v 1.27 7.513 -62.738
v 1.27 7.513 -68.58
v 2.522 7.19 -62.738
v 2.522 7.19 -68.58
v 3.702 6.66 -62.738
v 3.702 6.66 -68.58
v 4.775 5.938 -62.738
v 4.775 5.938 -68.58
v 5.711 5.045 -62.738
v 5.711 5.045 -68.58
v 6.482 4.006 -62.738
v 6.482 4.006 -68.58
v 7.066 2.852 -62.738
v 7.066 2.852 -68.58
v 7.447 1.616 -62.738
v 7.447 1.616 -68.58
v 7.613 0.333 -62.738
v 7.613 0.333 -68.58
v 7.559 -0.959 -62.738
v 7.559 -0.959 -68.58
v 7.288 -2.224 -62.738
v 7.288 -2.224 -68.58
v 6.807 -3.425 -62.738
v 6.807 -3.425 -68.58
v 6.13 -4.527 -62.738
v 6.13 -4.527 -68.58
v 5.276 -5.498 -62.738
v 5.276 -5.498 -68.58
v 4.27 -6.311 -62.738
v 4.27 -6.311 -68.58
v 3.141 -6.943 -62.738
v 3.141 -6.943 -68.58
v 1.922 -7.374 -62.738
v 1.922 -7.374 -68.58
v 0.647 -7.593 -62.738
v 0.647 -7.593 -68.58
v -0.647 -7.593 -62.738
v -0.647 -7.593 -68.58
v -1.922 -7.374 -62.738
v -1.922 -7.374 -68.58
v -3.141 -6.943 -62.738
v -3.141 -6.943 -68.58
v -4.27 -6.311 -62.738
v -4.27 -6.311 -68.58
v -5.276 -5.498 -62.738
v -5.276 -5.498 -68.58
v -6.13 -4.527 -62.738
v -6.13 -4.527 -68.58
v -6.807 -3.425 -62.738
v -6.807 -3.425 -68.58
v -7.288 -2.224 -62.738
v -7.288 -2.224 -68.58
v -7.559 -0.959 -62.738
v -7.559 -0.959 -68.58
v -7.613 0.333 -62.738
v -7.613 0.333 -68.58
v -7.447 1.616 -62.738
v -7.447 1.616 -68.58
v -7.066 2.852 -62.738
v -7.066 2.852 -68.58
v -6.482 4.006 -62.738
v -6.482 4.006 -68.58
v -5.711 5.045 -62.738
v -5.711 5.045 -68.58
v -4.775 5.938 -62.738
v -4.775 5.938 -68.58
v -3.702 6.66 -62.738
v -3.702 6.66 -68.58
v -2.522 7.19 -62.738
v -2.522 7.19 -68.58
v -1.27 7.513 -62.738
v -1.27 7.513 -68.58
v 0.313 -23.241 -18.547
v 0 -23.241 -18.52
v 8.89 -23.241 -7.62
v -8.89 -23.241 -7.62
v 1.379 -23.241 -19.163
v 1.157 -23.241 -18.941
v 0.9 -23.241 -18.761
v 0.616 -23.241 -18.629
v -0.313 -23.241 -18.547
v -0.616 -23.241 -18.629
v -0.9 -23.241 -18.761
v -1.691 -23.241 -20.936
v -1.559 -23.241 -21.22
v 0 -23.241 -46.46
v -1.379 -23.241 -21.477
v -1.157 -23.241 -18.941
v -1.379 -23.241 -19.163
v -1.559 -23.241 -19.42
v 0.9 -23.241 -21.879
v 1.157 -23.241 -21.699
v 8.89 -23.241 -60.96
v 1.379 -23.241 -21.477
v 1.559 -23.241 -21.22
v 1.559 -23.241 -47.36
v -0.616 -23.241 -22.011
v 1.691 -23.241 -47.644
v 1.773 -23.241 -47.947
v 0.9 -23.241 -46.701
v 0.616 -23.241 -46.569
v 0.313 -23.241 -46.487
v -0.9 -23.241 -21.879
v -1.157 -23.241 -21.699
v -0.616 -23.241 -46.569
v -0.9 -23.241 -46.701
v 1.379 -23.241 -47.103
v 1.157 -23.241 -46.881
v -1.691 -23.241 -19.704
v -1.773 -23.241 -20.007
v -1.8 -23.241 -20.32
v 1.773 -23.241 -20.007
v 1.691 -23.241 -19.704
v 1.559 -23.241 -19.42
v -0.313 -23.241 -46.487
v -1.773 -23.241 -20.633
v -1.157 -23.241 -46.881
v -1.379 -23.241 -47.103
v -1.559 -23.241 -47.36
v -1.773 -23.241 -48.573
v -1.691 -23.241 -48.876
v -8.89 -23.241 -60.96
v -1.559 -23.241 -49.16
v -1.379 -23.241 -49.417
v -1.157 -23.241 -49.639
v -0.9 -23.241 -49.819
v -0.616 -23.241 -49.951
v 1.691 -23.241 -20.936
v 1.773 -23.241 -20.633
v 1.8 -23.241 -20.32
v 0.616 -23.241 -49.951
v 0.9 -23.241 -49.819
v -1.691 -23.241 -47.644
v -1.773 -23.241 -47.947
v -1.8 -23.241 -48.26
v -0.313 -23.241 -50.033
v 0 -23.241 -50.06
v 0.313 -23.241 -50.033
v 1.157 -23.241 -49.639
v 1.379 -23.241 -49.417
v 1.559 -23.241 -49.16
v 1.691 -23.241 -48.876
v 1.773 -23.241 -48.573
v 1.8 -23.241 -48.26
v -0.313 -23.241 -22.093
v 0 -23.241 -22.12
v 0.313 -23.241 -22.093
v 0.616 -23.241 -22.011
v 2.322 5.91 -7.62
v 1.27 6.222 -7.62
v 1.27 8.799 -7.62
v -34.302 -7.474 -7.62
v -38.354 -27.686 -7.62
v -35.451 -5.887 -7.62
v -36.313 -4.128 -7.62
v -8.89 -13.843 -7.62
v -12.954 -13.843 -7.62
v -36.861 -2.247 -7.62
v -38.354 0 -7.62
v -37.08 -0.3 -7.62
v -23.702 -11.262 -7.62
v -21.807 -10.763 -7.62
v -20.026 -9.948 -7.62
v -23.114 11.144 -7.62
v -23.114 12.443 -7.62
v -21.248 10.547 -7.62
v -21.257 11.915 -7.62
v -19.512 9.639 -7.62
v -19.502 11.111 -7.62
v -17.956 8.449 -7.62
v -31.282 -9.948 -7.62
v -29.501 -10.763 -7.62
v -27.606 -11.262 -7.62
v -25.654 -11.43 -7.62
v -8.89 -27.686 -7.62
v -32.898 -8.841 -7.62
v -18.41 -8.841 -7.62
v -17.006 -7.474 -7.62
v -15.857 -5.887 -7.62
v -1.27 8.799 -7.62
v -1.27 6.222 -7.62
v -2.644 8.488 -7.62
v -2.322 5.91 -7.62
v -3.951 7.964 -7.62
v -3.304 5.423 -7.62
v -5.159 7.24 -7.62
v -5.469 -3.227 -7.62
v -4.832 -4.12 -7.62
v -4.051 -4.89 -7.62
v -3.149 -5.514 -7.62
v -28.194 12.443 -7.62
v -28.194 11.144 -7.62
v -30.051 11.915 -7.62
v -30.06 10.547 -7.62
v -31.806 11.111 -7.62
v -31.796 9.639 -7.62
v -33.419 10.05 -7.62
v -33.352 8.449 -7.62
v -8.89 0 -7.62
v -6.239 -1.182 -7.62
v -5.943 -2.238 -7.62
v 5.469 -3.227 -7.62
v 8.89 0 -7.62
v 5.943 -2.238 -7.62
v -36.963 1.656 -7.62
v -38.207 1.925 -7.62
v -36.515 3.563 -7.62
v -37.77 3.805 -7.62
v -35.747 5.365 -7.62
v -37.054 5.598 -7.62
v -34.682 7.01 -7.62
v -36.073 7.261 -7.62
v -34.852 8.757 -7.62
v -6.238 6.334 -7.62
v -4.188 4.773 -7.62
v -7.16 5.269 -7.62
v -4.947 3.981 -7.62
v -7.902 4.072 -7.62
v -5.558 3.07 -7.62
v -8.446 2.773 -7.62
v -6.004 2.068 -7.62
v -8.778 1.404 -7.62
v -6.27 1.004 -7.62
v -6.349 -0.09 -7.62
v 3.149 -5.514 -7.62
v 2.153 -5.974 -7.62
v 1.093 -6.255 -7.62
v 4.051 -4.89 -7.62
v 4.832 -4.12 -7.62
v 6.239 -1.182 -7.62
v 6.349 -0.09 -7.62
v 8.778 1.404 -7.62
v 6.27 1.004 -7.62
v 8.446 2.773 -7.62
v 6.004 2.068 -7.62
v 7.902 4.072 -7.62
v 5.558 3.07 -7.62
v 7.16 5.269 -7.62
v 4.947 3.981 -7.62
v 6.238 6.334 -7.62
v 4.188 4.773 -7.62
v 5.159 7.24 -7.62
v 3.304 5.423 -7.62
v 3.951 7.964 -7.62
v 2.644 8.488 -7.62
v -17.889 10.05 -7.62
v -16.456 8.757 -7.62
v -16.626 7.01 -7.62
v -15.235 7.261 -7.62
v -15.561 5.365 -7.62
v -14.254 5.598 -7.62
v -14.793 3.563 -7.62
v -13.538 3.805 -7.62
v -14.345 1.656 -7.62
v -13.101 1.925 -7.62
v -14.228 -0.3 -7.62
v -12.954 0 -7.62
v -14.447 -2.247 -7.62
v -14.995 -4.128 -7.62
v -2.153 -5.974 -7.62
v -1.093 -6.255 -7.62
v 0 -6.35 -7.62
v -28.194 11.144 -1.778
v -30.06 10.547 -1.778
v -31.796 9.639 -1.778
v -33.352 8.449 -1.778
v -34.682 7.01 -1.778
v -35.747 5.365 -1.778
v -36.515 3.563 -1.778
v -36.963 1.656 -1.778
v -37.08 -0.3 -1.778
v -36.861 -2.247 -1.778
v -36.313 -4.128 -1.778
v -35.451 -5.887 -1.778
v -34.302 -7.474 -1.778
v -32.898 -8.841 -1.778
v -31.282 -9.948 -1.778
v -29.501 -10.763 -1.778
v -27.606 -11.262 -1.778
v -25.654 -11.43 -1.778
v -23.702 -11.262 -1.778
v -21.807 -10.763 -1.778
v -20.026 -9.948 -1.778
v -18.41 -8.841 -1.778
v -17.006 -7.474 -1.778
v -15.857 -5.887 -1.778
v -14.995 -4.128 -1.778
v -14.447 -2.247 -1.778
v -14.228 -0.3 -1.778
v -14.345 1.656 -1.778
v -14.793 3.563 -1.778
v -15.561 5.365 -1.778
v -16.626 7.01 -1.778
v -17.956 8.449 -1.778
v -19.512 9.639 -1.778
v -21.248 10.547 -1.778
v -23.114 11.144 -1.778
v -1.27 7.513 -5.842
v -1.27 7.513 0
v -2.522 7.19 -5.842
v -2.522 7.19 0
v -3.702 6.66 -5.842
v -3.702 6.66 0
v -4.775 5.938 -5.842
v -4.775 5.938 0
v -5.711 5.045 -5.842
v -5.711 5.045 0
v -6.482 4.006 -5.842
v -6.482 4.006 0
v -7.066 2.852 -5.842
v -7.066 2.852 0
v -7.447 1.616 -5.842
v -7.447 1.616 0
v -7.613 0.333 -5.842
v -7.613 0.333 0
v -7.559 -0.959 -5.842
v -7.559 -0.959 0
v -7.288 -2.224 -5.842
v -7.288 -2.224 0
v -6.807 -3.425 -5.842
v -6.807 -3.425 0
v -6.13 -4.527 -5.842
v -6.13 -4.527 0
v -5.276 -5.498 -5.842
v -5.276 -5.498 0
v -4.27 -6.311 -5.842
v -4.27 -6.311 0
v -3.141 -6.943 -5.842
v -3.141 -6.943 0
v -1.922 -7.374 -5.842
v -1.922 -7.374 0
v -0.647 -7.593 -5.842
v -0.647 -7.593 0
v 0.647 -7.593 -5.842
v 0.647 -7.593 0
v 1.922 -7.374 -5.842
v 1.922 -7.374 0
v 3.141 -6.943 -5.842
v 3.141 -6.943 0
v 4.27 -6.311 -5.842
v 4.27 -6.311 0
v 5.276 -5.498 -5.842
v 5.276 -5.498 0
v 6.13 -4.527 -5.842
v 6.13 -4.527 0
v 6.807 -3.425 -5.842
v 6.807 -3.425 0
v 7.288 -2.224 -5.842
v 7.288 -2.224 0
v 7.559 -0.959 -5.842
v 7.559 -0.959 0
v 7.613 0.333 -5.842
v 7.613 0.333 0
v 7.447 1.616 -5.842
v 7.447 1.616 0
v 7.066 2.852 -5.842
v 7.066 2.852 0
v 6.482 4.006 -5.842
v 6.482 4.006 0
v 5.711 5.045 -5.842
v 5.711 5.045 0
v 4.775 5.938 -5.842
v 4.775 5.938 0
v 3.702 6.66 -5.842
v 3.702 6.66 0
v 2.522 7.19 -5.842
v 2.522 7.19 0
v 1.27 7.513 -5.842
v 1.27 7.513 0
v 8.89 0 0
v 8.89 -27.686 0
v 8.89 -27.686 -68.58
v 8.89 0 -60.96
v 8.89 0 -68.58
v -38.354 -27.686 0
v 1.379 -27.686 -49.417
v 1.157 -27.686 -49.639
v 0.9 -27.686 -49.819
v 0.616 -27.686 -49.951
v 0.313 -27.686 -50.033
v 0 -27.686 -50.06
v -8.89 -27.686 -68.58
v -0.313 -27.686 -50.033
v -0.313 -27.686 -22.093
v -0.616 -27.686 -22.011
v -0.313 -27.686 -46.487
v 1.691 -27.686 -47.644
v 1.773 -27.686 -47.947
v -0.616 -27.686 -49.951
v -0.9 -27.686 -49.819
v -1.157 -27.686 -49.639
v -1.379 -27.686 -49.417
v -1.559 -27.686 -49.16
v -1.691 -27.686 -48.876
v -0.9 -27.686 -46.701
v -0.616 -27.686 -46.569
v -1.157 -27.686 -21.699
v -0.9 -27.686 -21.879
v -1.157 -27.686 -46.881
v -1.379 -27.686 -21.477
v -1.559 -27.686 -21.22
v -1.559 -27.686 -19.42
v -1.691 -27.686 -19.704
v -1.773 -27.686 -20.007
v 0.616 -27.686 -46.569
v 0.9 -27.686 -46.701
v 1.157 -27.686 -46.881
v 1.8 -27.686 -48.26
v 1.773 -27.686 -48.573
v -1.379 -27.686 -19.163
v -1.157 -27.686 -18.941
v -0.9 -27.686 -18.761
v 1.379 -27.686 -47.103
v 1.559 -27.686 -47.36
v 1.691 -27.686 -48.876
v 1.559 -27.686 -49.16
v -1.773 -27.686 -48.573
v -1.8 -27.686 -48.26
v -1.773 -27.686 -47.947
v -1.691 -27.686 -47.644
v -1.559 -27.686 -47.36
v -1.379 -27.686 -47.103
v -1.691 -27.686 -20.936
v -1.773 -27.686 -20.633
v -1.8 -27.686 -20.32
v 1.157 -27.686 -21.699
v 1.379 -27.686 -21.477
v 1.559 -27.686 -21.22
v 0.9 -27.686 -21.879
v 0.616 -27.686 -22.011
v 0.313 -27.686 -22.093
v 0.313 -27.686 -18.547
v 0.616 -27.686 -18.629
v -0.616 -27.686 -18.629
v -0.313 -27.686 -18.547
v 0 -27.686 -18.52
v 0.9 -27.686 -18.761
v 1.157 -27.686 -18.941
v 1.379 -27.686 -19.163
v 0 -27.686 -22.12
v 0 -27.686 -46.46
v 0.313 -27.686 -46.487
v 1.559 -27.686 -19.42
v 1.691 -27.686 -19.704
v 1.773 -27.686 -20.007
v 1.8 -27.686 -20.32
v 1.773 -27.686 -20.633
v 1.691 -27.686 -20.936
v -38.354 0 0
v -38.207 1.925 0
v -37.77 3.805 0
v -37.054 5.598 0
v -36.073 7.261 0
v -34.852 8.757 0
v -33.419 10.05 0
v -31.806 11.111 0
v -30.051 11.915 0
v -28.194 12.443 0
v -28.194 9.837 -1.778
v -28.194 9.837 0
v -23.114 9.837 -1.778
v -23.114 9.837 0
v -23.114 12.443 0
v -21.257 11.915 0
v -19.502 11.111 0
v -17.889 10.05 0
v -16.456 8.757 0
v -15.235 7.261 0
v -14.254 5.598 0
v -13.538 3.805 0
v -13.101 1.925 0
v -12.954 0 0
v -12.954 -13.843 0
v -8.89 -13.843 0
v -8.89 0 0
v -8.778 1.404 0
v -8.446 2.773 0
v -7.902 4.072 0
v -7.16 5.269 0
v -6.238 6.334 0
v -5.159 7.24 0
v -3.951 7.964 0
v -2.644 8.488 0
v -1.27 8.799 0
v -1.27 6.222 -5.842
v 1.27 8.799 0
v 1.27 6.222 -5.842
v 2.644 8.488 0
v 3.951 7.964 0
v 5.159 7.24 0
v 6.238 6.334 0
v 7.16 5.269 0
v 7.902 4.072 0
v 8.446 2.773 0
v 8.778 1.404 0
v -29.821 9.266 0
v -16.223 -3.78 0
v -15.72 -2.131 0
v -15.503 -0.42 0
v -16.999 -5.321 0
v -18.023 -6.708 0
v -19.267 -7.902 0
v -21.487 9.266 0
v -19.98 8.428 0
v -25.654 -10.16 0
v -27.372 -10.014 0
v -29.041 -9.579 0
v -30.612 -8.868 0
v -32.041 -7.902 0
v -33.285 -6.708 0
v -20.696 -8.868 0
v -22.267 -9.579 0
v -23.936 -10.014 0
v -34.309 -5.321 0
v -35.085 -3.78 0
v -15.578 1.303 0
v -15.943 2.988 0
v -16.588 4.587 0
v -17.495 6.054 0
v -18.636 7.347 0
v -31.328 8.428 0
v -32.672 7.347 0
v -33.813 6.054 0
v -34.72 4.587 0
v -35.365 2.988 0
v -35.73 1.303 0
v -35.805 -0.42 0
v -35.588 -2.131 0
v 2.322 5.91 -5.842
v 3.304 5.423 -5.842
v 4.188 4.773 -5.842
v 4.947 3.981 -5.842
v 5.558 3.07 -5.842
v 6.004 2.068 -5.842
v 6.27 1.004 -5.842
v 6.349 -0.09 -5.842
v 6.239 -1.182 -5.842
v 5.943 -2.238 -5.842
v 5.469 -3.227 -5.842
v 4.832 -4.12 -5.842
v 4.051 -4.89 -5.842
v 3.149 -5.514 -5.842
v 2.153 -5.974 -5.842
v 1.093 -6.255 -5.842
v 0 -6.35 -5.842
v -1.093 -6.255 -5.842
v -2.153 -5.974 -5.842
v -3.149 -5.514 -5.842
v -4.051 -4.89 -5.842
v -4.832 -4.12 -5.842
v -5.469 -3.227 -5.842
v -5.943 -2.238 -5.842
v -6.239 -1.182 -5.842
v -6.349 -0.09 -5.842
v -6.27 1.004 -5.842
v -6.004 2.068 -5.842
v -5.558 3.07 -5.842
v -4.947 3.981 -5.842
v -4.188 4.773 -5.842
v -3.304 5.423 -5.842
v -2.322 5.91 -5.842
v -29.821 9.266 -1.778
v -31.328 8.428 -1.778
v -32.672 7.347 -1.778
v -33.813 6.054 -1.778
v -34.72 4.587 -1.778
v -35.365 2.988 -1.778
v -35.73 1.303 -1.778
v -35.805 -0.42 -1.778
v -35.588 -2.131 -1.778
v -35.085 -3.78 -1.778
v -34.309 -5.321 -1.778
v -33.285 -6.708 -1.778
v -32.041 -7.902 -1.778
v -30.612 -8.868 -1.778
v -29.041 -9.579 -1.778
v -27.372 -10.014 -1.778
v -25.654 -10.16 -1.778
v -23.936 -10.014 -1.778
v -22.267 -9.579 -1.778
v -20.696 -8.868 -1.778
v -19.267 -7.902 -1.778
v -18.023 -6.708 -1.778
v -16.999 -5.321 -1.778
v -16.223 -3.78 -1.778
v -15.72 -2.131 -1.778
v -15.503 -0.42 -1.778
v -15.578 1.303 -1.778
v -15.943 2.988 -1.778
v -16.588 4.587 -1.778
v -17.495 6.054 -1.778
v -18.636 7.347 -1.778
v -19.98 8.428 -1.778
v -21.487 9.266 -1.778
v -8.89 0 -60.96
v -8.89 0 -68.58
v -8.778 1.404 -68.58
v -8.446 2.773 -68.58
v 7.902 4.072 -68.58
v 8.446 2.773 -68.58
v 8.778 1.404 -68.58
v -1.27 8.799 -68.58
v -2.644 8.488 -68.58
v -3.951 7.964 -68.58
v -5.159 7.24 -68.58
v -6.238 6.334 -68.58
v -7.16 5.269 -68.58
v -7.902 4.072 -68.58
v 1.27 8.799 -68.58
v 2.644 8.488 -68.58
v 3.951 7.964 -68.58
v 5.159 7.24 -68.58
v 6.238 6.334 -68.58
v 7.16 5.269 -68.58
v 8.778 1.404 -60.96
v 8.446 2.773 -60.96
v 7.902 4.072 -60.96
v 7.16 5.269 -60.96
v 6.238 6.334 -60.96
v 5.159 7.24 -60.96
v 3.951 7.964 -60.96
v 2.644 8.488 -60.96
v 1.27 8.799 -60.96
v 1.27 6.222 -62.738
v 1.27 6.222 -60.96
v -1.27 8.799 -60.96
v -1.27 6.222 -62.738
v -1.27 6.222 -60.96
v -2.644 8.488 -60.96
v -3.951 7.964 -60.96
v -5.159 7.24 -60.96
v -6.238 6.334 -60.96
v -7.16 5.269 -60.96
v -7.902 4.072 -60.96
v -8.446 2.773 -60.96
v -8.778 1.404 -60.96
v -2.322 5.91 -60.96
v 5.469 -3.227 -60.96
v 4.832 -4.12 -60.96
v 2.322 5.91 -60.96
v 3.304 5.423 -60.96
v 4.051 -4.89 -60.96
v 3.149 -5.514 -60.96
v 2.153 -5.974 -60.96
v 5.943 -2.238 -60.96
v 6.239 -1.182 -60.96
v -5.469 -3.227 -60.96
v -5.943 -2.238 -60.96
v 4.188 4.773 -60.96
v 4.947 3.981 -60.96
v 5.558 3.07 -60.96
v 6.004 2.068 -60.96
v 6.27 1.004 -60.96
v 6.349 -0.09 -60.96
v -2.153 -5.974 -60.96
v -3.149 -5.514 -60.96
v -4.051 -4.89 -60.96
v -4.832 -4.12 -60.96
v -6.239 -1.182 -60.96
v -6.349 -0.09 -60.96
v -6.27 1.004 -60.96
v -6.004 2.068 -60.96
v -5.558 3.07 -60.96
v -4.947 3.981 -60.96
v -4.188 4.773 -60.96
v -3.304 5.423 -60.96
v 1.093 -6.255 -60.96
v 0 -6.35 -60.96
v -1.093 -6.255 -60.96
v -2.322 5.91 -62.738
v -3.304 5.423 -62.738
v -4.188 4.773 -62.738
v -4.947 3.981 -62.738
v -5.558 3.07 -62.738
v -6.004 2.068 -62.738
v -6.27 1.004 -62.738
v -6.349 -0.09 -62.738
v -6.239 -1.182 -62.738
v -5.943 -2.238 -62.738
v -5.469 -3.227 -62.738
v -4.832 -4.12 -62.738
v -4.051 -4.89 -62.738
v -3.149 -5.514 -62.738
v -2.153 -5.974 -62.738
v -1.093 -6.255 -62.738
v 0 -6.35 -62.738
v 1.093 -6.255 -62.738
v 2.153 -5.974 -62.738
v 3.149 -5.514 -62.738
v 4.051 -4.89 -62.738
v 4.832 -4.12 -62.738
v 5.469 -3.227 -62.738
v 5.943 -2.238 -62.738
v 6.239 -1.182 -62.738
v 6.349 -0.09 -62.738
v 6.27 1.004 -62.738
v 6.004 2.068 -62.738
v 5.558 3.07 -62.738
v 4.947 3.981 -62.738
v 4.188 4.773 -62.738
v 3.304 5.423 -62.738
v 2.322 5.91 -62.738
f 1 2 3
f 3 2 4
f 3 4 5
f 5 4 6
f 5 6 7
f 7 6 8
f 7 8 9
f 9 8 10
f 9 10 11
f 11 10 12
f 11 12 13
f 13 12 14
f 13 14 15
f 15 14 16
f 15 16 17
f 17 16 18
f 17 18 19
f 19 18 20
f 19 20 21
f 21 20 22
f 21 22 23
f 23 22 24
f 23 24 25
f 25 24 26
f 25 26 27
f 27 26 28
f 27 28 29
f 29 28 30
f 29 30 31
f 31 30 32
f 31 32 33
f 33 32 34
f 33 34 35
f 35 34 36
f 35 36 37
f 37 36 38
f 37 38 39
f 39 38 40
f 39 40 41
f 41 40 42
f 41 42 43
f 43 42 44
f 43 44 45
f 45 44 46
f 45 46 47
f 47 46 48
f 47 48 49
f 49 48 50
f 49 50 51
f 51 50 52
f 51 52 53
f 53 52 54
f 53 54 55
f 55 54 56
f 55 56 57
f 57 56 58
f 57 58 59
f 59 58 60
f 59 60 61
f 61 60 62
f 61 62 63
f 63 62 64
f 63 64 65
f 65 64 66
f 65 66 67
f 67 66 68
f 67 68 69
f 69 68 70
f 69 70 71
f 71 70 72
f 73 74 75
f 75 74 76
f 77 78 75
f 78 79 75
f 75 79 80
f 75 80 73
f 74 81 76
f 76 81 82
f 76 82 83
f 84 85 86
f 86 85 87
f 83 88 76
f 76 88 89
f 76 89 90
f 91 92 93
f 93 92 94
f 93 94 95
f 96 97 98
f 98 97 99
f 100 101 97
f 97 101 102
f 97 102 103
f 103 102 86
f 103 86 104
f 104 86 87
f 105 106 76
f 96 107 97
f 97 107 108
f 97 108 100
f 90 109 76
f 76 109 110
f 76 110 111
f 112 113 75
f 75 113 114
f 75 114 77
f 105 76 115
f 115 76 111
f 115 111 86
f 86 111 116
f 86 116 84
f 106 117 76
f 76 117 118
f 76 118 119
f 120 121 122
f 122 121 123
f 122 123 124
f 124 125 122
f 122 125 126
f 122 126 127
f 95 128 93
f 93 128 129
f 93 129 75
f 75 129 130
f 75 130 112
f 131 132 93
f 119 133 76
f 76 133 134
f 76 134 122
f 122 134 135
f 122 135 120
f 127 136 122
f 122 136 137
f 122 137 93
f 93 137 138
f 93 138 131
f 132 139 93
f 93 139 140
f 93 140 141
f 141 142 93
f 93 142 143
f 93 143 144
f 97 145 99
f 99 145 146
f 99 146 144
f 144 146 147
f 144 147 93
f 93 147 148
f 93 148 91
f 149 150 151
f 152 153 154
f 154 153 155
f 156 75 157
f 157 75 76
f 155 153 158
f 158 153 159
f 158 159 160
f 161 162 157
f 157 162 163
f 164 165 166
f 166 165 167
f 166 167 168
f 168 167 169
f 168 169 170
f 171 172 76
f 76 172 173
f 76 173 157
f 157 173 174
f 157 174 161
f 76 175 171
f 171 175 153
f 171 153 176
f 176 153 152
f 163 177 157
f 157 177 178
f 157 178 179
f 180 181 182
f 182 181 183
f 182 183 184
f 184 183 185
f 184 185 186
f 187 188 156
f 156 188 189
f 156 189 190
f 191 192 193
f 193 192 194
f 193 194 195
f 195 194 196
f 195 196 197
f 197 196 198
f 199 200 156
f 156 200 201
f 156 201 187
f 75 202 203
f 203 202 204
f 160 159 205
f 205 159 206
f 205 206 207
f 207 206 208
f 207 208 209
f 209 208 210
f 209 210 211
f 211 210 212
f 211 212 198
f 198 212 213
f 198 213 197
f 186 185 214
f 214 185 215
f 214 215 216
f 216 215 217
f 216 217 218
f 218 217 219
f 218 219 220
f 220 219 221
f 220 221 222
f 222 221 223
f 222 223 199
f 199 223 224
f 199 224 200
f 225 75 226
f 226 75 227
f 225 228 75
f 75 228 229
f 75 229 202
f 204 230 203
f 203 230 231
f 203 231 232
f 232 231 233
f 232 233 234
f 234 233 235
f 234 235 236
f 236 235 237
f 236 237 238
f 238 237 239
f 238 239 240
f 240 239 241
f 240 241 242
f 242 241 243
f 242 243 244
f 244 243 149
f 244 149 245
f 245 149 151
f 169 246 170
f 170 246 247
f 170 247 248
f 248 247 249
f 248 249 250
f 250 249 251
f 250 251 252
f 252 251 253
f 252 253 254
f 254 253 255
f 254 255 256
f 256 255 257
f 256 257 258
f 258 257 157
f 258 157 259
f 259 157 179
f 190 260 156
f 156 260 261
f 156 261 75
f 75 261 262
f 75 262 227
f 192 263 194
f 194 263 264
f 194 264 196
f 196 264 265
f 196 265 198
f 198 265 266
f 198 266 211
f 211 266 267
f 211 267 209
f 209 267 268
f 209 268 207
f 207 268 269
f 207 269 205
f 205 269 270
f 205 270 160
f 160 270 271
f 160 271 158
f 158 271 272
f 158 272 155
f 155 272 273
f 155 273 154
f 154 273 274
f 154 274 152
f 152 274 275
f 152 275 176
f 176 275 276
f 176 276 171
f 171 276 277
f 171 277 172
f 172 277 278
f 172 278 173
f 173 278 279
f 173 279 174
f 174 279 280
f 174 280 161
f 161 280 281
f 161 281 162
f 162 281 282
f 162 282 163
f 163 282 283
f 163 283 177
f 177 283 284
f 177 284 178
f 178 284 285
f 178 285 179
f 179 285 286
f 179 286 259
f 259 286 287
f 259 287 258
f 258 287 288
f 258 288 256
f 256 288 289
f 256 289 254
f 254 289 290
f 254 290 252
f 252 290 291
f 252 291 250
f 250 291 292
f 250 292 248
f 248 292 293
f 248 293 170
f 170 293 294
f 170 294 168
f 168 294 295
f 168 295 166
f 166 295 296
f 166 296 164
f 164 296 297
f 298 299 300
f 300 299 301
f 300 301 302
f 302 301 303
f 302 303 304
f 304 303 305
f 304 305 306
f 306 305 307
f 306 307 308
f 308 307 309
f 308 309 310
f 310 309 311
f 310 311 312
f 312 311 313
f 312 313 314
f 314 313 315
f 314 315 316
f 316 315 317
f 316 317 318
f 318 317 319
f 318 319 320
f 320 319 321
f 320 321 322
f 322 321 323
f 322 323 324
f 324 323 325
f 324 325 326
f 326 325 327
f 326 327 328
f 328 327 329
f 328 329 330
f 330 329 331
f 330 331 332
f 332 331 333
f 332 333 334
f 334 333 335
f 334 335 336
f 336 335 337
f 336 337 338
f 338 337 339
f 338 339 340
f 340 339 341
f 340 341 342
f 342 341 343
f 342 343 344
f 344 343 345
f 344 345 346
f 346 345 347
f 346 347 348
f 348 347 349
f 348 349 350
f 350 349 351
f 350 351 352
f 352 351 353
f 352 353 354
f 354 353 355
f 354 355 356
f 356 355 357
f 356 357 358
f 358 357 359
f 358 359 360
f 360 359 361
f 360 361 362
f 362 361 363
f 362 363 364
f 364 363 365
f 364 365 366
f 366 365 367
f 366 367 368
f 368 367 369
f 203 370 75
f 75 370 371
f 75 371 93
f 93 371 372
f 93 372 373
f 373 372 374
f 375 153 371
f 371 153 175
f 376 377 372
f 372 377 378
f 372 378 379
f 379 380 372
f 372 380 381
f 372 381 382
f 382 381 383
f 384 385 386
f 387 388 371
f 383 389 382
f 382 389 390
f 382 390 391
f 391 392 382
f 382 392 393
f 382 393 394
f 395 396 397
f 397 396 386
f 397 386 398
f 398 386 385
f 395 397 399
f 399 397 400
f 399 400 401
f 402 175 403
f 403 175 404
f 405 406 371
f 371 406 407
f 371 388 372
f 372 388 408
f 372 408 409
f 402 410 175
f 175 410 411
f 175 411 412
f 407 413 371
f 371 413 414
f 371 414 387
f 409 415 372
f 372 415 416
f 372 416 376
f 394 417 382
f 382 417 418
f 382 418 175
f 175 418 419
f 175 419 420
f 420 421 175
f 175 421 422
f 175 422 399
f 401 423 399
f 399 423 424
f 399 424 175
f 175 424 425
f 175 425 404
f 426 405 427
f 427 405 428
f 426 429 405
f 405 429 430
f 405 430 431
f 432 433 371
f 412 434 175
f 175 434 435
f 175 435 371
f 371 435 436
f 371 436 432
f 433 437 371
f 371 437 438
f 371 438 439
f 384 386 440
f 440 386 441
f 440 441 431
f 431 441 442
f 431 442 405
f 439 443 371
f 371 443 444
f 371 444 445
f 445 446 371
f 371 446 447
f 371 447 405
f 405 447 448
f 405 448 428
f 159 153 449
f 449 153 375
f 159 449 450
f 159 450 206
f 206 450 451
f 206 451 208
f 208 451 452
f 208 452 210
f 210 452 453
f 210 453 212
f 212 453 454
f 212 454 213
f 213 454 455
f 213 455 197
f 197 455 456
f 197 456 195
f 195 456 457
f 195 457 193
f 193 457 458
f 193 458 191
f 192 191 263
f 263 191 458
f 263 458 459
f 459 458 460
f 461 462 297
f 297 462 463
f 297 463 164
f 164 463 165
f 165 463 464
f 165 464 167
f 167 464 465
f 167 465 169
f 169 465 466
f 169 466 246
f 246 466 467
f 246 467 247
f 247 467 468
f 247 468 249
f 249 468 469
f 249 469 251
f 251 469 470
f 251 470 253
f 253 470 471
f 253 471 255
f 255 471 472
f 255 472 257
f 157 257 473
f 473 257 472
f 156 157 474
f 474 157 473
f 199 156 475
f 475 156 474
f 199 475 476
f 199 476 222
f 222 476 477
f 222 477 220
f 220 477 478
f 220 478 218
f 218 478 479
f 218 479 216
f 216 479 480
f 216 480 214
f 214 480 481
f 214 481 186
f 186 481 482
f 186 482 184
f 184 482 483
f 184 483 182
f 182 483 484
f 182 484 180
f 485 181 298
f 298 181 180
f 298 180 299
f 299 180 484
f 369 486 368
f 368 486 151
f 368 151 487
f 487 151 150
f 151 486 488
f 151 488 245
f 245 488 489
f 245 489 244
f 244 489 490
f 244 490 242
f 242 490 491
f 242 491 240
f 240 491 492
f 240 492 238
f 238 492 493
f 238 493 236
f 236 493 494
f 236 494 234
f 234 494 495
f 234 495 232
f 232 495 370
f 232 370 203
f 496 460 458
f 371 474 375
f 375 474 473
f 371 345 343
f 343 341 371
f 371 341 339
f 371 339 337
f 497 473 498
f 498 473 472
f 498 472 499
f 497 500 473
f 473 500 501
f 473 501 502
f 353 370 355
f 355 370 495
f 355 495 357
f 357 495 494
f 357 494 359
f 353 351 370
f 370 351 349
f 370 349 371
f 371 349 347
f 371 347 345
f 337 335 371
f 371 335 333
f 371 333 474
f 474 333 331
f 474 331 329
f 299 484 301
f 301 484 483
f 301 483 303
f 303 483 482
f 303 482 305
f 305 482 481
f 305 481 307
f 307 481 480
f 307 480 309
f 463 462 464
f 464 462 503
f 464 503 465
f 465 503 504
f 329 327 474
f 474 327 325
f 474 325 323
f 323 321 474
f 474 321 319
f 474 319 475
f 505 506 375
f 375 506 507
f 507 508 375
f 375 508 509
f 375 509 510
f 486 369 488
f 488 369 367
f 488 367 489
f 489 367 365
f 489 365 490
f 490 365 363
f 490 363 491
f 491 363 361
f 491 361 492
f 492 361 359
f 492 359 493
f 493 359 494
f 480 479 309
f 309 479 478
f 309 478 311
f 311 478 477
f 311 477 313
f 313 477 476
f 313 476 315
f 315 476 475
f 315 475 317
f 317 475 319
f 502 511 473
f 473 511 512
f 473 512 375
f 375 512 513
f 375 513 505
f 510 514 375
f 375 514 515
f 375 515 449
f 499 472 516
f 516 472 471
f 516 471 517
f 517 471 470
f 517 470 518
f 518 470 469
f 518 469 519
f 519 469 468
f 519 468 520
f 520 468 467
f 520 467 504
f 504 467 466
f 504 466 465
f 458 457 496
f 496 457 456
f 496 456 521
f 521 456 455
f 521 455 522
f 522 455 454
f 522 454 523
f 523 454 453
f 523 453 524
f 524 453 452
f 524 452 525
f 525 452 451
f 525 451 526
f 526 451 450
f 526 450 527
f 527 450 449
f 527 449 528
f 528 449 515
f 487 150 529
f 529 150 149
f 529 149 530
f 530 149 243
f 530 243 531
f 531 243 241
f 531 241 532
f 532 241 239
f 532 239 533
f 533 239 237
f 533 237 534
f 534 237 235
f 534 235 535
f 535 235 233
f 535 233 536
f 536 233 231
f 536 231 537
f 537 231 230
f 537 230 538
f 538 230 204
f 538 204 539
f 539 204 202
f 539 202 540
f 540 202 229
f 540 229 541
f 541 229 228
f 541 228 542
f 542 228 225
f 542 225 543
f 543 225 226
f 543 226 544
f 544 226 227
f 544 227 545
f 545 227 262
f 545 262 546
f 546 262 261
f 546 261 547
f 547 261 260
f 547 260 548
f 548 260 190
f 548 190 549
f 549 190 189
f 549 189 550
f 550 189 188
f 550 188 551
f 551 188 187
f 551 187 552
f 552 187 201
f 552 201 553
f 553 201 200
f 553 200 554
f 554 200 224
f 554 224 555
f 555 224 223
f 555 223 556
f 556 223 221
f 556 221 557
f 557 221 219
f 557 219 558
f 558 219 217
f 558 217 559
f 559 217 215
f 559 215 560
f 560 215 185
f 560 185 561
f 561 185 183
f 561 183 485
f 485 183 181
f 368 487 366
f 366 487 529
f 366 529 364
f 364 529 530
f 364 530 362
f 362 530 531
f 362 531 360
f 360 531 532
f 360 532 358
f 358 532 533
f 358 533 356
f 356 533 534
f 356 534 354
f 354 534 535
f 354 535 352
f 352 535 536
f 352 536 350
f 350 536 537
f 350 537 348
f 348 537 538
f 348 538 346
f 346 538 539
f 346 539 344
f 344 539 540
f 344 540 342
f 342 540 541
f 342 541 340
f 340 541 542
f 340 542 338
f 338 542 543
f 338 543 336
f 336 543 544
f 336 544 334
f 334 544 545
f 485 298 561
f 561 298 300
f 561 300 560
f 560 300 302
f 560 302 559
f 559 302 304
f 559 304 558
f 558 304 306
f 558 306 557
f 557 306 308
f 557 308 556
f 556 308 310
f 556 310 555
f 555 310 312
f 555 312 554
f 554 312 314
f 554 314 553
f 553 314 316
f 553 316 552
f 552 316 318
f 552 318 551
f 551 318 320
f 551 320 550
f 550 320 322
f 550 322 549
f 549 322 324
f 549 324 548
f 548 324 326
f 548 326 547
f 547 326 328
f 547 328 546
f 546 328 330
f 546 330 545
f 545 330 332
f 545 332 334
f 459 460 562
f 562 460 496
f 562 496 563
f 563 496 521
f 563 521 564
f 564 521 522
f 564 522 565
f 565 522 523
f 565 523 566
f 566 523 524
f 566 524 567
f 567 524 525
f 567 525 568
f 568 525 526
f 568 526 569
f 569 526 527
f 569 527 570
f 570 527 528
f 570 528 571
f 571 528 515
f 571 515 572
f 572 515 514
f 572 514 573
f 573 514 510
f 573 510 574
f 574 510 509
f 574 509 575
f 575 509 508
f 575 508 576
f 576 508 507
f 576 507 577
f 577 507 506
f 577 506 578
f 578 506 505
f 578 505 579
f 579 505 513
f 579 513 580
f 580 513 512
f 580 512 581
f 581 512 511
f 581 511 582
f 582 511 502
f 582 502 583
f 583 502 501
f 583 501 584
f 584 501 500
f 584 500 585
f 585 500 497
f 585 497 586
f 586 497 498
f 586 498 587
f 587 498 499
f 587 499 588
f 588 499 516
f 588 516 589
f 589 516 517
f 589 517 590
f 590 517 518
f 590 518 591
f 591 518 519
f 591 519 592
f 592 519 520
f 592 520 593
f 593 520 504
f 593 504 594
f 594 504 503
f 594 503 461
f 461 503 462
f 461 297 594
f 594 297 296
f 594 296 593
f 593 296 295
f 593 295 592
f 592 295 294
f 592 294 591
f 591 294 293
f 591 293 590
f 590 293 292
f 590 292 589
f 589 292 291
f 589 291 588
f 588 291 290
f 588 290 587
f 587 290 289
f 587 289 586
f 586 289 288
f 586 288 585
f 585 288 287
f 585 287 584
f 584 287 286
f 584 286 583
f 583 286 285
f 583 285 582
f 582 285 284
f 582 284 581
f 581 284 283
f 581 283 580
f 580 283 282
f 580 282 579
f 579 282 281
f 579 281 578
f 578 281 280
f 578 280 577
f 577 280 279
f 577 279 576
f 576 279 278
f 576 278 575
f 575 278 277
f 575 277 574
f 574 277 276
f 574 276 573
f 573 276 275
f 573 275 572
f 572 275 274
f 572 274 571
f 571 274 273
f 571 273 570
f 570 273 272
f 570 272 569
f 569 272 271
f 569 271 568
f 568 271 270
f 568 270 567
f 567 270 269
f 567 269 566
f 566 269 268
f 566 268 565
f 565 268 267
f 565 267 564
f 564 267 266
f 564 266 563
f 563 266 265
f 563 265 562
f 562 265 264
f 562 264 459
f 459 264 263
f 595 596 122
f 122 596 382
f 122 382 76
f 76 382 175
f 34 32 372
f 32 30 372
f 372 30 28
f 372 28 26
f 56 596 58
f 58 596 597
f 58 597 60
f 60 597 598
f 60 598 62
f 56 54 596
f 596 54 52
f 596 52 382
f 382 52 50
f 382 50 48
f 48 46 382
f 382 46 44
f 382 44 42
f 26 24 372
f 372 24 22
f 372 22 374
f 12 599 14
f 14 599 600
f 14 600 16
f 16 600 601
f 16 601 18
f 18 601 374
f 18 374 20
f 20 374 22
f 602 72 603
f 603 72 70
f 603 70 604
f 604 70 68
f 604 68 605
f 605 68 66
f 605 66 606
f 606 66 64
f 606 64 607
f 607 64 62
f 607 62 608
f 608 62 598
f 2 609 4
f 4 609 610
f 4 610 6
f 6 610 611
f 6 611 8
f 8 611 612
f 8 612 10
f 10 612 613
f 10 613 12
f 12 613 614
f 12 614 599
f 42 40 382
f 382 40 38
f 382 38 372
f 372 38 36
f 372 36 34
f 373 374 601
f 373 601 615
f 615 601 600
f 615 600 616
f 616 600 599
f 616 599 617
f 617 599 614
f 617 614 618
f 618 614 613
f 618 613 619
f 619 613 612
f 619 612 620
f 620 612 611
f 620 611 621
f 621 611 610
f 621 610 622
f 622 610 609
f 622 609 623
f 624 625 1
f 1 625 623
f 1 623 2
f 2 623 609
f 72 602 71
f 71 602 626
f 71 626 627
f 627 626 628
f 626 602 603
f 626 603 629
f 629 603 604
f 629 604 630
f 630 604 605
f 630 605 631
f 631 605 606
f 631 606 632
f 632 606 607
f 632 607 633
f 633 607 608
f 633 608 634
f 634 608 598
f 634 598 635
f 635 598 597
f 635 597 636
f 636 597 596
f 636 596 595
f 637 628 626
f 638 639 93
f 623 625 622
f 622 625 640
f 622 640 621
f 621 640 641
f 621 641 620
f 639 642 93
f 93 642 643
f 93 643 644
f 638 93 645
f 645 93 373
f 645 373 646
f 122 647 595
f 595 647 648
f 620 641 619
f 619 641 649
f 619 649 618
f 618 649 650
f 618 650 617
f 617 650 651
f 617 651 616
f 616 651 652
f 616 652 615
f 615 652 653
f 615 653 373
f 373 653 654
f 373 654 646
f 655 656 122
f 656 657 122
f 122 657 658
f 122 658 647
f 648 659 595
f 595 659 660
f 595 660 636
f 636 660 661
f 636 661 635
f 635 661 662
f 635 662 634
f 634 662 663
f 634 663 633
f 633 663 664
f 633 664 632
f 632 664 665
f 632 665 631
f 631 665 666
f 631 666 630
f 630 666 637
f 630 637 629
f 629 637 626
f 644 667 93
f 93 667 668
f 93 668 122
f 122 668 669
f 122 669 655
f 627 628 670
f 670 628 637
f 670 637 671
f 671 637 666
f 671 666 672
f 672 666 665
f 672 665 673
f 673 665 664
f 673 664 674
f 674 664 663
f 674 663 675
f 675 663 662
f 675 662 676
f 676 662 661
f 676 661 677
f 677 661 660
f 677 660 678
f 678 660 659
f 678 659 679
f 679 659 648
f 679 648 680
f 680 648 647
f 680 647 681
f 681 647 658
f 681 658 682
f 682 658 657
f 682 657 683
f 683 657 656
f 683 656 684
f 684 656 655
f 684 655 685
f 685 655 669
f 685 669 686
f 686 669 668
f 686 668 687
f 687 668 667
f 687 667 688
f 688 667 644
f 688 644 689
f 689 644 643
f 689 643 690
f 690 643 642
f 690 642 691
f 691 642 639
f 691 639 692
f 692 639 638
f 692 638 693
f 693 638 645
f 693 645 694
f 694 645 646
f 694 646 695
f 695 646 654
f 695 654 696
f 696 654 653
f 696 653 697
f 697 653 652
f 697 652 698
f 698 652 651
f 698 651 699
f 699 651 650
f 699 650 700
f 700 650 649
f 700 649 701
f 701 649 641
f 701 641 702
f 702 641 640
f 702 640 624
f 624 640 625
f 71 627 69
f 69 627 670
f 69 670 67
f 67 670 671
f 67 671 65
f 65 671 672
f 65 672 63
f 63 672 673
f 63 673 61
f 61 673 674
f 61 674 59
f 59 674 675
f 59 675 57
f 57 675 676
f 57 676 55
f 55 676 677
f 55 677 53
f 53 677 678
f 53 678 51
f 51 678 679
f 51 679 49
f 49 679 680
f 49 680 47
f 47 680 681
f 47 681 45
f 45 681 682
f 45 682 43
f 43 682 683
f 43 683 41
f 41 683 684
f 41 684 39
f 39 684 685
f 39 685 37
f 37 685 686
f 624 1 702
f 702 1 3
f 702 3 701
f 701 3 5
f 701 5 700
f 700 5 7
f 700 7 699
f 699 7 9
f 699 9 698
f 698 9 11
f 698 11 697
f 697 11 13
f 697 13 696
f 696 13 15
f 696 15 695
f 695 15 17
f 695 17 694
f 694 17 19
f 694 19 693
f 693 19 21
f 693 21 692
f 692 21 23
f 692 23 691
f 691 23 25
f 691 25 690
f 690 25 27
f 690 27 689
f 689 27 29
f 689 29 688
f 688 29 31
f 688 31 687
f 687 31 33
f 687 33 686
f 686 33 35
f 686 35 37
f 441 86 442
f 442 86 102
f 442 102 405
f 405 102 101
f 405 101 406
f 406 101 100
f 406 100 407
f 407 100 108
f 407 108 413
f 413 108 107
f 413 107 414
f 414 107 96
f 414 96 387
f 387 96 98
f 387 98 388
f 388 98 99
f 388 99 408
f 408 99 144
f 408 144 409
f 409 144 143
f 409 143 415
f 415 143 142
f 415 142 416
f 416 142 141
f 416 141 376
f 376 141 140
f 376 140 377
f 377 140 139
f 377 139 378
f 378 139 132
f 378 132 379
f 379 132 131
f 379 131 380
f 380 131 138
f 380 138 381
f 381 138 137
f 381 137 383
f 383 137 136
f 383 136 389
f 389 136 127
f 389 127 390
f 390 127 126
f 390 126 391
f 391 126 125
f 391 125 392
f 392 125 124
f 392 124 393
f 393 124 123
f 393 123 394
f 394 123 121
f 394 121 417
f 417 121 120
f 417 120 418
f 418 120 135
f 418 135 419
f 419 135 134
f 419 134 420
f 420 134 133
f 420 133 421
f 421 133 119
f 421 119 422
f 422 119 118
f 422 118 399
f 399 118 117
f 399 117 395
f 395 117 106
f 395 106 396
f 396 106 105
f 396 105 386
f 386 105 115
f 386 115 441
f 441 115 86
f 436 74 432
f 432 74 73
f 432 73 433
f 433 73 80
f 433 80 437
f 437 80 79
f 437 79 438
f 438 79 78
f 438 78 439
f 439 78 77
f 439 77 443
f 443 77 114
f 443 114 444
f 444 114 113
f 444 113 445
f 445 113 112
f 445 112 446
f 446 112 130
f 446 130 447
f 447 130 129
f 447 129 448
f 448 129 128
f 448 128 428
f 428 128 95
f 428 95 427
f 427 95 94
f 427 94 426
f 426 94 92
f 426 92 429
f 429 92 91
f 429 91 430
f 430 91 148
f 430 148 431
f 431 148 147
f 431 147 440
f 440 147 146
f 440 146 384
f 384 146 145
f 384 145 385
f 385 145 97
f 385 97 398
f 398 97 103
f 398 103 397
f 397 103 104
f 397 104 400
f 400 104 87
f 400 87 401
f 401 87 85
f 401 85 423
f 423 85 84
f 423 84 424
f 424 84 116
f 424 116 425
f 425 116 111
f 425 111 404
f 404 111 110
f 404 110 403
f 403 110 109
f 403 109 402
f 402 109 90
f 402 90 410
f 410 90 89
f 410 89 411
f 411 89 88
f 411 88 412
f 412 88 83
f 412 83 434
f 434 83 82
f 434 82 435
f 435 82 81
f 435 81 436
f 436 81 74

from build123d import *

# Parameters (mm, degrees)
SKETCH1_W                = 4.064
SKETCH1_H                = 13.843
BOSS_EXTRUDE1_DEPTH      = 7.62
BOSS_EXTRUDE2_START      = -1.778
BOSS_EXTRUDE2_DEPTH      = 1.778
BOSS_EXTRUDE3_DEPTH      = 1.778
SKETCH4_W                = 17.78
SKETCH4_H                = 4.445
BOSS_EXTRUDE4_DEPTH      = 60.96
BOSS_EXTRUDE5_START      = -7.62
BOSS_EXTRUDE5_DEPTH      = 7.62
M3_CLEARANCE_HOLE1_D     = 3.6
M3_CLEARANCE_HOLE1_DEPTH = 25.4
M3_CLEARANCE_HOLE1_TIP   = 1.081549114


with BuildPart() as part:
    # Sketch1 → Boss-Extrude1 (new body)
    with BuildSketch(Plane.XY):
        with BuildLine():
            Line((-38.354, -27.686), (-12.954, -27.686))
            Line((-12.954, -27.686), (-12.954, -13.843))
            Line((-12.954, -13.843), (-12.954, 0))
            ThreePointArc((-12.954, 0), (-25.654, -12.7), (-38.354, 0))
            Line((-38.354, 0), (-38.354, -27.686))
        make_face()
        with BuildLine():
            Line((8.89, -27.686), (8.89, 0))
            ThreePointArc((8.89, 0), (0, -8.89), (-8.89, 0))
            Line((-8.89, 0), (-8.89, -13.843))
            Line((-8.89, -13.843), (-8.89, -27.686))
            Line((-8.89, -27.686), (8.89, -27.686))
        make_face()
        with BuildLine():
            ThreePointArc((-8.89, 0), (0, -8.89), (8.89, 0))
            Line((8.89, 0), (7.62, 0))
            ThreePointArc((7.62, 0), (0, -7.62), (-7.62, 0))
            Line((-7.62, 0), (-8.89, 0))
        make_face()
        with BuildLine():
            ThreePointArc((-1.27, 8.798818102), (-6.72020833, 5.819871133), (-8.89, 0))
            Line((-8.89, 0), (-7.62, 0))
            ThreePointArc((-7.62, 0), (-5.819871133, 4.91868885), (-1.27, 7.513421325))
            Line((-1.27, 7.513421325), (-1.27, 8.798818102))
        make_face()
        with BuildLine():
            Line((7.62, 0), (8.89, 0))
            ThreePointArc((8.89, 0), (6.72020833, 5.819871133), (1.27, 8.798818102))
            Line((1.27, 8.798818102), (1.27, 7.513421325))
            ThreePointArc((1.27, 7.513421325), (5.819871133, 4.91868885), (7.62, 0))
        make_face()
        with BuildLine():
            ThreePointArc((-38.354, 0), (-25.654, -12.7), (-12.954, 0))
            Line((-12.954, 0), (-14.224, 0))
            ThreePointArc((-14.224, 0), (-25.654, -11.43), (-37.084, 0))
            Line((-37.084, 0), (-38.354, 0))
        make_face()
        with BuildLine():
            Line((-14.224, 0), (-12.954, 0))
            ThreePointArc((-12.954, 0), (-15.816622301, 8.032185257), (-23.114, 12.443407893))
            Line((-23.114, 12.443407893), (-23.114, 11.144204772))
            ThreePointArc((-23.114, 11.144204772), (-16.718757978, 7.127857322), (-14.224, 0))
        make_face()
        with BuildLine():
            ThreePointArc((-28.194, 12.443407893), (-35.491377699, 8.032185257), (-38.354, 0))
            Line((-38.354, 0), (-37.084, 0))
            ThreePointArc((-37.084, 0), (-34.589242022, 7.127857322), (-28.194, 11.144204772))
            Line((-28.194, 11.144204772), (-28.194, 12.443407893))
        make_face()
        with Locations((-10.922, -20.7645)):
            Rectangle(SKETCH1_W, SKETCH1_H)
    extrude(amount=-BOSS_EXTRUDE1_DEPTH)

    # Sketch2 → Boss-Extrude2 (add)
    with BuildSketch(Plane(origin=(0, 0, -7.62), x_dir=(-1, 0, 0), z_dir=(0, 0, -1)).offset(BOSS_EXTRUDE2_START)):
        with BuildLine():
            Line((-1.27, 6.221703947), (-1.27, 7.513421325))
            ThreePointArc((-1.27, 7.513421325), (-4.91868885, -5.819871133), (7.62, 0))
            ThreePointArc((7.62, 0), (5.819871133, 4.91868885), (1.27, 7.513421325))
            Line((1.27, 7.513421325), (1.27, 6.221703947))
            ThreePointArc((1.27, 6.221703947), (4.91868885, 4.016092628), (6.35, 0))
            ThreePointArc((6.35, 0), (-4.016092628, -4.91868885), (-1.27, 6.221703947))
        make_face()
    boss_extrude2 = extrude(amount=BOSS_EXTRUDE2_DEPTH)

    # Sketch3 → Boss-Extrude3 (add)
    with BuildSketch(Plane.XY):
        with BuildLine():
            Line((-28.194, 9.837377699), (-28.194, 11.144204772))
            ThreePointArc((-28.194, 11.144204772), (-32.781857322, -8.935242022), (-14.224, 0))
            ThreePointArc((-14.224, 0), (-16.718757978, 7.127857322), (-23.114, 11.144204772))
            Line((-23.114, 11.144204772), (-23.114, 9.837377699))
            ThreePointArc((-23.114, 9.837377699), (-17.621814743, 6.221703947), (-15.494, 0))
            ThreePointArc((-15.494, 0), (-31.875703947, -8.032185257), (-28.194, 9.837377699))
        make_face()
    extrude(amount=-BOSS_EXTRUDE3_DEPTH)

    # Sketch4 → Boss-Extrude4 (add)
    with BuildSketch(Plane(origin=(0, 0, -7.62), x_dir=(-1, 0, 0), z_dir=(0, 0, -1))):
        with Locations((0, -25.4635)):
            Rectangle(SKETCH4_W, SKETCH4_H)
    extrude(amount=BOSS_EXTRUDE4_DEPTH)

    # Sketch5 → Boss-Extrude5 (add)
    with BuildSketch(Plane(origin=(0, 0, -68.58), x_dir=(-1, 0, 0), z_dir=(0, 0, -1)).offset(BOSS_EXTRUDE5_START)):
        with BuildLine():
            Line((8.89, -23.241), (8.89, 0))
            ThreePointArc((8.89, 0), (0, -8.89), (-8.89, 0))
            Line((-8.89, 0), (-8.89, -23.241))
            Line((-8.89, -23.241), (8.89, -23.241))
        make_face()
        with BuildLine():
            ThreePointArc((-8.89, 0), (0, -8.89), (8.89, 0))
            ThreePointArc((8.89, 0), (6.72020833, 5.819871133), (1.27, 8.798818102))
            Line((1.27, 8.798818102), (1.27, 7.513421325))
            ThreePointArc((1.27, 7.513421325), (5.819871133, 4.91868885), (7.62, 0))
            ThreePointArc((7.62, 0), (-4.91868885, -5.819871133), (-1.27, 7.513421325))
            Line((-1.27, 7.513421325), (-1.27, 8.798818102))
            ThreePointArc((-1.27, 8.798818102), (-6.72020833, 5.819871133), (-8.89, 0))
        make_face()
    extrude(amount=BOSS_EXTRUDE5_DEPTH)

    # Mirror1: Boss-Extrude2 across plane
    add(boss_extrude2.mirror(Plane(origin=(0, 0, -34.29), x_dir=(1, 0, 0), z_dir=(0, 0, -1))))

    # M3 Clearance Hole1
    with Locations(Plane(origin=(0, -23.241, 0), x_dir=(1, 0, 0), z_dir=(0, 1, 0))):
        with Locations((0, 20.32), (0, 48.26)):
            Hole(M3_CLEARANCE_HOLE1_D / 2, depth=M3_CLEARANCE_HOLE1_DEPTH)
            with Locations((0, 0, -(M3_CLEARANCE_HOLE1_DEPTH + M3_CLEARANCE_HOLE1_TIP / 2))):  # 118° drill point
                Cone(0, M3_CLEARANCE_HOLE1_D / 2, M3_CLEARANCE_HOLE1_TIP, mode=Mode.SUBTRACT)


solid = part.part
